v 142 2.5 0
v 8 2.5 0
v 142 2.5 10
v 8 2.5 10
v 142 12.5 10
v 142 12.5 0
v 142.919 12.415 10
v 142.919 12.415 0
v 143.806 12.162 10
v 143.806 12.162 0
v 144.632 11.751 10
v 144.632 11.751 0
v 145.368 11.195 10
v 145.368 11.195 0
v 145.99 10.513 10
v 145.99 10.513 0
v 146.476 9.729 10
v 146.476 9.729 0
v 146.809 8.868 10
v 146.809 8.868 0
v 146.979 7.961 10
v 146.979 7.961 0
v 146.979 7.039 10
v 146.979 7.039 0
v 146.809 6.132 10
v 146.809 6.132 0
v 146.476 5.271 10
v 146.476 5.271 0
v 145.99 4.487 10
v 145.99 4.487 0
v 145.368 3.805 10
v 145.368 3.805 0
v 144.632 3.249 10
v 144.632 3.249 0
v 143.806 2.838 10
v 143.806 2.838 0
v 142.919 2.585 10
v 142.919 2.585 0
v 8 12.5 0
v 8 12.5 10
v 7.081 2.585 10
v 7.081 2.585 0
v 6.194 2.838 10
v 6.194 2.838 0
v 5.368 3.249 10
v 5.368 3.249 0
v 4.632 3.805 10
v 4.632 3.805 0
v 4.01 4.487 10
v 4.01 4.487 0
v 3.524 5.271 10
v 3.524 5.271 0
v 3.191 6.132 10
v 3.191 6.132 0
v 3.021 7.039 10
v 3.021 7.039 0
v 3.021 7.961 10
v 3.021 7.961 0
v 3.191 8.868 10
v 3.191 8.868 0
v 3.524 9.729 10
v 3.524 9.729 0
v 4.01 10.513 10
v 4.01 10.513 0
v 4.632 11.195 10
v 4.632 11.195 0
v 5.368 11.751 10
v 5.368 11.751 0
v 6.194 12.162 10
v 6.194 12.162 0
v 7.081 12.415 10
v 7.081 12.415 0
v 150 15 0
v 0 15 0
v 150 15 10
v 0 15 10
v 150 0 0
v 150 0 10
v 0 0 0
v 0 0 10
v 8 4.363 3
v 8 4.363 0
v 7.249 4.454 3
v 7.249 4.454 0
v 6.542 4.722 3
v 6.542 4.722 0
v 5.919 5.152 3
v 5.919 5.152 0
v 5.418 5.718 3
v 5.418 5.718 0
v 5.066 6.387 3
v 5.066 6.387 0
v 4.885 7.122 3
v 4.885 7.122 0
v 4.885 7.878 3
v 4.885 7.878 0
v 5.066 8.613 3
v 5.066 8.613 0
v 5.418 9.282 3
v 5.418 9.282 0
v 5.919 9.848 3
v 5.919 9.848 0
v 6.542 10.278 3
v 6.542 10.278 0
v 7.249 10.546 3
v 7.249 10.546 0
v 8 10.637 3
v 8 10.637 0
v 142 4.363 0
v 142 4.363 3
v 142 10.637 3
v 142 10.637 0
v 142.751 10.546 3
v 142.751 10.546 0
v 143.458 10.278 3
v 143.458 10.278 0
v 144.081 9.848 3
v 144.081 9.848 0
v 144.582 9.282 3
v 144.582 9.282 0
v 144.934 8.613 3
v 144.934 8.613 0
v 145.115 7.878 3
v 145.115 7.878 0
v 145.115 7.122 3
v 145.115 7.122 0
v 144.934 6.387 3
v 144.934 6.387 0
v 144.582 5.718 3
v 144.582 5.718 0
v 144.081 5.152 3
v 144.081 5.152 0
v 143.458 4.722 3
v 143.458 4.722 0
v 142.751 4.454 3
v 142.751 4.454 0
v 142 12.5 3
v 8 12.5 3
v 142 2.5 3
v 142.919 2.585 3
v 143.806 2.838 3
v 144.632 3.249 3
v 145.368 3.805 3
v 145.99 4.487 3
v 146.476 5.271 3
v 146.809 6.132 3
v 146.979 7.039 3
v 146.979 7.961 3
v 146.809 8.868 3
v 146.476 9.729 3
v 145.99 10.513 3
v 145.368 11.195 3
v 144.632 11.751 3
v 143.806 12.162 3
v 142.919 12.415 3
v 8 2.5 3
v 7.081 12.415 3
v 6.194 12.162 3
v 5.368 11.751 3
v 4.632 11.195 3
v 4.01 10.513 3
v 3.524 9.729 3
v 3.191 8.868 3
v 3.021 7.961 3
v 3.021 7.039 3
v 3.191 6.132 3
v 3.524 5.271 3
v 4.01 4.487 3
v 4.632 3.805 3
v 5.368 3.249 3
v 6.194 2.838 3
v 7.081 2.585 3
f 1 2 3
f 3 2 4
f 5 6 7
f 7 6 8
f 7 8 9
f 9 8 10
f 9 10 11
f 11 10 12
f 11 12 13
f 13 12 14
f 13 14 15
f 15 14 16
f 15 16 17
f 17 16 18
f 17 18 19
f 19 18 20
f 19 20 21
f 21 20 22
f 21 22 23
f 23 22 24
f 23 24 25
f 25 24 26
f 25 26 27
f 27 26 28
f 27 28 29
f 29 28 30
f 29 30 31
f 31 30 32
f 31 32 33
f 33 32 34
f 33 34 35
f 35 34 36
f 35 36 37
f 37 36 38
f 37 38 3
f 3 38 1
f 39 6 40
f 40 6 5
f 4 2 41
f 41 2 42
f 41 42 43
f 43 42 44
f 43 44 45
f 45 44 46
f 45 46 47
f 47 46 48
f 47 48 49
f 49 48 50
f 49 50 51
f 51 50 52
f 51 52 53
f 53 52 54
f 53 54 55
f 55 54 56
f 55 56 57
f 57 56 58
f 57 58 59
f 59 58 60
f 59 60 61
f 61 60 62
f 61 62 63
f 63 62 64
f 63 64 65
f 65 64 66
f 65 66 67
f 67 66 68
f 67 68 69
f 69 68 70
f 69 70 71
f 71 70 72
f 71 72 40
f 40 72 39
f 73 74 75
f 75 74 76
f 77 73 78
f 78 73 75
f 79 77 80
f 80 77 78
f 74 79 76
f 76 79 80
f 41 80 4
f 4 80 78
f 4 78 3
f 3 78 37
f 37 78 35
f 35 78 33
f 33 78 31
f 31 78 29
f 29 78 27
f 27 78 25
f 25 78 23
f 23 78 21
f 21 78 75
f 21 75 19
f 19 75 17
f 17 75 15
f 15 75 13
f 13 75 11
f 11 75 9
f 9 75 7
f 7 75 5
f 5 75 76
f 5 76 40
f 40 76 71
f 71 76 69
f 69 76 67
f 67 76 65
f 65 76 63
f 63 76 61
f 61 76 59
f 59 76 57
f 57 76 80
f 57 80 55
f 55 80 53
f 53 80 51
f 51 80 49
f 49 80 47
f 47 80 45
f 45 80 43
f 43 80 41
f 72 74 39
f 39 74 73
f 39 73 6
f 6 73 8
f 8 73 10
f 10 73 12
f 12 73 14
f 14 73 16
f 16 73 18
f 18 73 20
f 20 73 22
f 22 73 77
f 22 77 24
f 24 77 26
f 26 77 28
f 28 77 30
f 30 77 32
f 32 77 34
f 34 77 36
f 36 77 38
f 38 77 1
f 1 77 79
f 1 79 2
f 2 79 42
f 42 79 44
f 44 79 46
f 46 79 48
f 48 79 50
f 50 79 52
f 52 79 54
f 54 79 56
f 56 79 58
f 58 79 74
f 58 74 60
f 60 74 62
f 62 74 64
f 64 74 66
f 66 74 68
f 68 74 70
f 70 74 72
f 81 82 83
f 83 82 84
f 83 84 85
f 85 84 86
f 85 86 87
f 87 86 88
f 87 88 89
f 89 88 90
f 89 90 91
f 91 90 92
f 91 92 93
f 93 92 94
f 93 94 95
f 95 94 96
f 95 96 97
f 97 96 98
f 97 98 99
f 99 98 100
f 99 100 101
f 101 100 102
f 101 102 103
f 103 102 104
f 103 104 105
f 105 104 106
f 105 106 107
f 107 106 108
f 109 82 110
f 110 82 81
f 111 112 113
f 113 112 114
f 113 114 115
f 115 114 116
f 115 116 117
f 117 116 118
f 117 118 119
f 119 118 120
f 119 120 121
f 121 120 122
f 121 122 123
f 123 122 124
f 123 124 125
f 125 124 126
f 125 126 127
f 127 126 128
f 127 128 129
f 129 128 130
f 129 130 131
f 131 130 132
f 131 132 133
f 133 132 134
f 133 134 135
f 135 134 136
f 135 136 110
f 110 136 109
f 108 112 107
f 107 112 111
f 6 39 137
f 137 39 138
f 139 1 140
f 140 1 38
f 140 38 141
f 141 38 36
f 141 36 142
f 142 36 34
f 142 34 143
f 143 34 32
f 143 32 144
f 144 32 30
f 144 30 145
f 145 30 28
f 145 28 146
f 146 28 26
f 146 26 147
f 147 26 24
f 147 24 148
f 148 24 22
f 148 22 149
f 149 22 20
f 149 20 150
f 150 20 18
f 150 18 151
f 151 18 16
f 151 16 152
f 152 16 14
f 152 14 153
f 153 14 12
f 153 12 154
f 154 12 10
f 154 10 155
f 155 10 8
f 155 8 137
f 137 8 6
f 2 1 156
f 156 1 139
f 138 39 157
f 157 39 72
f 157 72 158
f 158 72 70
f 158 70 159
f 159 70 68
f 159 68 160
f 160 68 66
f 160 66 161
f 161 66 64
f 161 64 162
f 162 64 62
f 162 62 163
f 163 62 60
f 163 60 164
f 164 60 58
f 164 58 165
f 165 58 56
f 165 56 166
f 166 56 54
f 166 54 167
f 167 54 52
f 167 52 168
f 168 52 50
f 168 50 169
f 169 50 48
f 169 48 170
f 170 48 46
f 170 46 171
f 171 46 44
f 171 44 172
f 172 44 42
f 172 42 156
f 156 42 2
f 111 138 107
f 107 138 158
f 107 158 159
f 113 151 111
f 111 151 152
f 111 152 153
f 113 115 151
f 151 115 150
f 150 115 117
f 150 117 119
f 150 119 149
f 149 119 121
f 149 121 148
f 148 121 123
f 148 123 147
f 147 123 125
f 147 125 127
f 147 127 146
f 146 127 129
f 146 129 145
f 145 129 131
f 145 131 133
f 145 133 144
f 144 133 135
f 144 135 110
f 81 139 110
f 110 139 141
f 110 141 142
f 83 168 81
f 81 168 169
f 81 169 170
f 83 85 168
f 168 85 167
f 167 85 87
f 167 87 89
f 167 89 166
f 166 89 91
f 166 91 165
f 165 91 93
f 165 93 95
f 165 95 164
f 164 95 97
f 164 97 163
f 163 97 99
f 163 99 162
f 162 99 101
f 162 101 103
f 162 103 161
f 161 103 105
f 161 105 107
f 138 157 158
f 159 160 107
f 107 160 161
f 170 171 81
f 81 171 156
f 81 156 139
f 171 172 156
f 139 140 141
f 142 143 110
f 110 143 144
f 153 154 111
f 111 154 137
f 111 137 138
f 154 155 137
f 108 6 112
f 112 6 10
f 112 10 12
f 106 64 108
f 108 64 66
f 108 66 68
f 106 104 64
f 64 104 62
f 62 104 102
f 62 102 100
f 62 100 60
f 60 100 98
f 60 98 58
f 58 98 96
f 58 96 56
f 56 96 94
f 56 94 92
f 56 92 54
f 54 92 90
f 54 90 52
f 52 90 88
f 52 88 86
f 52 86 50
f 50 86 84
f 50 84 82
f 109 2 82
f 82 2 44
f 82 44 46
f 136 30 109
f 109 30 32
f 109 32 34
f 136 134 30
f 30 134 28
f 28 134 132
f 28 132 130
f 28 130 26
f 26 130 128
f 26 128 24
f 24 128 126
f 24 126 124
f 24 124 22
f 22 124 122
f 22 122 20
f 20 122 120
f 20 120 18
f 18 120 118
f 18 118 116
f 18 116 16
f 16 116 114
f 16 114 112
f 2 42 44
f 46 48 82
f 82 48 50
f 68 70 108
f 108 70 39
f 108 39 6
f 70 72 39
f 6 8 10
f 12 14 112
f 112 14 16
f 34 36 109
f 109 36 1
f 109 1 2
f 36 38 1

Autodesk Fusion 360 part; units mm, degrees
sketch "Sketch1" plane through (0, 0, 0) normal (0, 0, 1) x (1, 0, 0)
  line L0 (0, 0) -> (150, 0)
  line L1 (150, 0) -> (150, 15)
  line L2 (150, 15) -> (0, 15)
  line L3 (0, 15) -> (0, 0)
  line L4 (150, 15) -> (0, 0) construction
  line L5 (0, 15) -> (150, 0) construction
  line L6 (75, 7.5) -> (150, 7.5) construction
  line L7 (75, 7.5) -> (0, 7.5) construction
  circle A0 centre (8, 7.5) radius 5
  circle A1 centre (8, 7.5) radius 3.1375
  circle A2 centre (142, 7.5) radius 5
  circle A3 centre (142, 7.5) radius 3.1375
  line L8 (142, 7.5) -> (142, 15) construction
  line L9 (142, 7.5) -> (142, 0) construction
  line L10 (8, 7.5) -> (8, 15) construction
  line L11 (8, 7.5) -> (8, 0) construction
  line L12 (8, 12.5) -> (142, 12.5)
  line L13 (8, 2.5) -> (142, 2.5)
  line L14 (8, 4.3625) -> (142, 4.3625)
  line L15 (142, 10.6375) -> (8, 10.6375)
  dimension "d1" = 150
  dimension "d2" = 15
  dimension "d3" = 10
  dimension "d4" = 8
  dimension "d5" = 6.275
  dimension "d6" = 10
  dimension "d7" = 8
  dimension "d8" = 6.275
extrude "Extrude1" add sketch "Sketch1" along normal blind 10 makes body 1
extrude "Extrude2" add sketch "Sketch1" along normal blind 3 separate body contours A0 A1 L14 L15 | A0 A2 L12 L15 | A0 A2 L13 L14 | A2 A3 L14 L15 picked at (4.0316, 5.6757) picked at (141.753, 3.1392) makes body 2
